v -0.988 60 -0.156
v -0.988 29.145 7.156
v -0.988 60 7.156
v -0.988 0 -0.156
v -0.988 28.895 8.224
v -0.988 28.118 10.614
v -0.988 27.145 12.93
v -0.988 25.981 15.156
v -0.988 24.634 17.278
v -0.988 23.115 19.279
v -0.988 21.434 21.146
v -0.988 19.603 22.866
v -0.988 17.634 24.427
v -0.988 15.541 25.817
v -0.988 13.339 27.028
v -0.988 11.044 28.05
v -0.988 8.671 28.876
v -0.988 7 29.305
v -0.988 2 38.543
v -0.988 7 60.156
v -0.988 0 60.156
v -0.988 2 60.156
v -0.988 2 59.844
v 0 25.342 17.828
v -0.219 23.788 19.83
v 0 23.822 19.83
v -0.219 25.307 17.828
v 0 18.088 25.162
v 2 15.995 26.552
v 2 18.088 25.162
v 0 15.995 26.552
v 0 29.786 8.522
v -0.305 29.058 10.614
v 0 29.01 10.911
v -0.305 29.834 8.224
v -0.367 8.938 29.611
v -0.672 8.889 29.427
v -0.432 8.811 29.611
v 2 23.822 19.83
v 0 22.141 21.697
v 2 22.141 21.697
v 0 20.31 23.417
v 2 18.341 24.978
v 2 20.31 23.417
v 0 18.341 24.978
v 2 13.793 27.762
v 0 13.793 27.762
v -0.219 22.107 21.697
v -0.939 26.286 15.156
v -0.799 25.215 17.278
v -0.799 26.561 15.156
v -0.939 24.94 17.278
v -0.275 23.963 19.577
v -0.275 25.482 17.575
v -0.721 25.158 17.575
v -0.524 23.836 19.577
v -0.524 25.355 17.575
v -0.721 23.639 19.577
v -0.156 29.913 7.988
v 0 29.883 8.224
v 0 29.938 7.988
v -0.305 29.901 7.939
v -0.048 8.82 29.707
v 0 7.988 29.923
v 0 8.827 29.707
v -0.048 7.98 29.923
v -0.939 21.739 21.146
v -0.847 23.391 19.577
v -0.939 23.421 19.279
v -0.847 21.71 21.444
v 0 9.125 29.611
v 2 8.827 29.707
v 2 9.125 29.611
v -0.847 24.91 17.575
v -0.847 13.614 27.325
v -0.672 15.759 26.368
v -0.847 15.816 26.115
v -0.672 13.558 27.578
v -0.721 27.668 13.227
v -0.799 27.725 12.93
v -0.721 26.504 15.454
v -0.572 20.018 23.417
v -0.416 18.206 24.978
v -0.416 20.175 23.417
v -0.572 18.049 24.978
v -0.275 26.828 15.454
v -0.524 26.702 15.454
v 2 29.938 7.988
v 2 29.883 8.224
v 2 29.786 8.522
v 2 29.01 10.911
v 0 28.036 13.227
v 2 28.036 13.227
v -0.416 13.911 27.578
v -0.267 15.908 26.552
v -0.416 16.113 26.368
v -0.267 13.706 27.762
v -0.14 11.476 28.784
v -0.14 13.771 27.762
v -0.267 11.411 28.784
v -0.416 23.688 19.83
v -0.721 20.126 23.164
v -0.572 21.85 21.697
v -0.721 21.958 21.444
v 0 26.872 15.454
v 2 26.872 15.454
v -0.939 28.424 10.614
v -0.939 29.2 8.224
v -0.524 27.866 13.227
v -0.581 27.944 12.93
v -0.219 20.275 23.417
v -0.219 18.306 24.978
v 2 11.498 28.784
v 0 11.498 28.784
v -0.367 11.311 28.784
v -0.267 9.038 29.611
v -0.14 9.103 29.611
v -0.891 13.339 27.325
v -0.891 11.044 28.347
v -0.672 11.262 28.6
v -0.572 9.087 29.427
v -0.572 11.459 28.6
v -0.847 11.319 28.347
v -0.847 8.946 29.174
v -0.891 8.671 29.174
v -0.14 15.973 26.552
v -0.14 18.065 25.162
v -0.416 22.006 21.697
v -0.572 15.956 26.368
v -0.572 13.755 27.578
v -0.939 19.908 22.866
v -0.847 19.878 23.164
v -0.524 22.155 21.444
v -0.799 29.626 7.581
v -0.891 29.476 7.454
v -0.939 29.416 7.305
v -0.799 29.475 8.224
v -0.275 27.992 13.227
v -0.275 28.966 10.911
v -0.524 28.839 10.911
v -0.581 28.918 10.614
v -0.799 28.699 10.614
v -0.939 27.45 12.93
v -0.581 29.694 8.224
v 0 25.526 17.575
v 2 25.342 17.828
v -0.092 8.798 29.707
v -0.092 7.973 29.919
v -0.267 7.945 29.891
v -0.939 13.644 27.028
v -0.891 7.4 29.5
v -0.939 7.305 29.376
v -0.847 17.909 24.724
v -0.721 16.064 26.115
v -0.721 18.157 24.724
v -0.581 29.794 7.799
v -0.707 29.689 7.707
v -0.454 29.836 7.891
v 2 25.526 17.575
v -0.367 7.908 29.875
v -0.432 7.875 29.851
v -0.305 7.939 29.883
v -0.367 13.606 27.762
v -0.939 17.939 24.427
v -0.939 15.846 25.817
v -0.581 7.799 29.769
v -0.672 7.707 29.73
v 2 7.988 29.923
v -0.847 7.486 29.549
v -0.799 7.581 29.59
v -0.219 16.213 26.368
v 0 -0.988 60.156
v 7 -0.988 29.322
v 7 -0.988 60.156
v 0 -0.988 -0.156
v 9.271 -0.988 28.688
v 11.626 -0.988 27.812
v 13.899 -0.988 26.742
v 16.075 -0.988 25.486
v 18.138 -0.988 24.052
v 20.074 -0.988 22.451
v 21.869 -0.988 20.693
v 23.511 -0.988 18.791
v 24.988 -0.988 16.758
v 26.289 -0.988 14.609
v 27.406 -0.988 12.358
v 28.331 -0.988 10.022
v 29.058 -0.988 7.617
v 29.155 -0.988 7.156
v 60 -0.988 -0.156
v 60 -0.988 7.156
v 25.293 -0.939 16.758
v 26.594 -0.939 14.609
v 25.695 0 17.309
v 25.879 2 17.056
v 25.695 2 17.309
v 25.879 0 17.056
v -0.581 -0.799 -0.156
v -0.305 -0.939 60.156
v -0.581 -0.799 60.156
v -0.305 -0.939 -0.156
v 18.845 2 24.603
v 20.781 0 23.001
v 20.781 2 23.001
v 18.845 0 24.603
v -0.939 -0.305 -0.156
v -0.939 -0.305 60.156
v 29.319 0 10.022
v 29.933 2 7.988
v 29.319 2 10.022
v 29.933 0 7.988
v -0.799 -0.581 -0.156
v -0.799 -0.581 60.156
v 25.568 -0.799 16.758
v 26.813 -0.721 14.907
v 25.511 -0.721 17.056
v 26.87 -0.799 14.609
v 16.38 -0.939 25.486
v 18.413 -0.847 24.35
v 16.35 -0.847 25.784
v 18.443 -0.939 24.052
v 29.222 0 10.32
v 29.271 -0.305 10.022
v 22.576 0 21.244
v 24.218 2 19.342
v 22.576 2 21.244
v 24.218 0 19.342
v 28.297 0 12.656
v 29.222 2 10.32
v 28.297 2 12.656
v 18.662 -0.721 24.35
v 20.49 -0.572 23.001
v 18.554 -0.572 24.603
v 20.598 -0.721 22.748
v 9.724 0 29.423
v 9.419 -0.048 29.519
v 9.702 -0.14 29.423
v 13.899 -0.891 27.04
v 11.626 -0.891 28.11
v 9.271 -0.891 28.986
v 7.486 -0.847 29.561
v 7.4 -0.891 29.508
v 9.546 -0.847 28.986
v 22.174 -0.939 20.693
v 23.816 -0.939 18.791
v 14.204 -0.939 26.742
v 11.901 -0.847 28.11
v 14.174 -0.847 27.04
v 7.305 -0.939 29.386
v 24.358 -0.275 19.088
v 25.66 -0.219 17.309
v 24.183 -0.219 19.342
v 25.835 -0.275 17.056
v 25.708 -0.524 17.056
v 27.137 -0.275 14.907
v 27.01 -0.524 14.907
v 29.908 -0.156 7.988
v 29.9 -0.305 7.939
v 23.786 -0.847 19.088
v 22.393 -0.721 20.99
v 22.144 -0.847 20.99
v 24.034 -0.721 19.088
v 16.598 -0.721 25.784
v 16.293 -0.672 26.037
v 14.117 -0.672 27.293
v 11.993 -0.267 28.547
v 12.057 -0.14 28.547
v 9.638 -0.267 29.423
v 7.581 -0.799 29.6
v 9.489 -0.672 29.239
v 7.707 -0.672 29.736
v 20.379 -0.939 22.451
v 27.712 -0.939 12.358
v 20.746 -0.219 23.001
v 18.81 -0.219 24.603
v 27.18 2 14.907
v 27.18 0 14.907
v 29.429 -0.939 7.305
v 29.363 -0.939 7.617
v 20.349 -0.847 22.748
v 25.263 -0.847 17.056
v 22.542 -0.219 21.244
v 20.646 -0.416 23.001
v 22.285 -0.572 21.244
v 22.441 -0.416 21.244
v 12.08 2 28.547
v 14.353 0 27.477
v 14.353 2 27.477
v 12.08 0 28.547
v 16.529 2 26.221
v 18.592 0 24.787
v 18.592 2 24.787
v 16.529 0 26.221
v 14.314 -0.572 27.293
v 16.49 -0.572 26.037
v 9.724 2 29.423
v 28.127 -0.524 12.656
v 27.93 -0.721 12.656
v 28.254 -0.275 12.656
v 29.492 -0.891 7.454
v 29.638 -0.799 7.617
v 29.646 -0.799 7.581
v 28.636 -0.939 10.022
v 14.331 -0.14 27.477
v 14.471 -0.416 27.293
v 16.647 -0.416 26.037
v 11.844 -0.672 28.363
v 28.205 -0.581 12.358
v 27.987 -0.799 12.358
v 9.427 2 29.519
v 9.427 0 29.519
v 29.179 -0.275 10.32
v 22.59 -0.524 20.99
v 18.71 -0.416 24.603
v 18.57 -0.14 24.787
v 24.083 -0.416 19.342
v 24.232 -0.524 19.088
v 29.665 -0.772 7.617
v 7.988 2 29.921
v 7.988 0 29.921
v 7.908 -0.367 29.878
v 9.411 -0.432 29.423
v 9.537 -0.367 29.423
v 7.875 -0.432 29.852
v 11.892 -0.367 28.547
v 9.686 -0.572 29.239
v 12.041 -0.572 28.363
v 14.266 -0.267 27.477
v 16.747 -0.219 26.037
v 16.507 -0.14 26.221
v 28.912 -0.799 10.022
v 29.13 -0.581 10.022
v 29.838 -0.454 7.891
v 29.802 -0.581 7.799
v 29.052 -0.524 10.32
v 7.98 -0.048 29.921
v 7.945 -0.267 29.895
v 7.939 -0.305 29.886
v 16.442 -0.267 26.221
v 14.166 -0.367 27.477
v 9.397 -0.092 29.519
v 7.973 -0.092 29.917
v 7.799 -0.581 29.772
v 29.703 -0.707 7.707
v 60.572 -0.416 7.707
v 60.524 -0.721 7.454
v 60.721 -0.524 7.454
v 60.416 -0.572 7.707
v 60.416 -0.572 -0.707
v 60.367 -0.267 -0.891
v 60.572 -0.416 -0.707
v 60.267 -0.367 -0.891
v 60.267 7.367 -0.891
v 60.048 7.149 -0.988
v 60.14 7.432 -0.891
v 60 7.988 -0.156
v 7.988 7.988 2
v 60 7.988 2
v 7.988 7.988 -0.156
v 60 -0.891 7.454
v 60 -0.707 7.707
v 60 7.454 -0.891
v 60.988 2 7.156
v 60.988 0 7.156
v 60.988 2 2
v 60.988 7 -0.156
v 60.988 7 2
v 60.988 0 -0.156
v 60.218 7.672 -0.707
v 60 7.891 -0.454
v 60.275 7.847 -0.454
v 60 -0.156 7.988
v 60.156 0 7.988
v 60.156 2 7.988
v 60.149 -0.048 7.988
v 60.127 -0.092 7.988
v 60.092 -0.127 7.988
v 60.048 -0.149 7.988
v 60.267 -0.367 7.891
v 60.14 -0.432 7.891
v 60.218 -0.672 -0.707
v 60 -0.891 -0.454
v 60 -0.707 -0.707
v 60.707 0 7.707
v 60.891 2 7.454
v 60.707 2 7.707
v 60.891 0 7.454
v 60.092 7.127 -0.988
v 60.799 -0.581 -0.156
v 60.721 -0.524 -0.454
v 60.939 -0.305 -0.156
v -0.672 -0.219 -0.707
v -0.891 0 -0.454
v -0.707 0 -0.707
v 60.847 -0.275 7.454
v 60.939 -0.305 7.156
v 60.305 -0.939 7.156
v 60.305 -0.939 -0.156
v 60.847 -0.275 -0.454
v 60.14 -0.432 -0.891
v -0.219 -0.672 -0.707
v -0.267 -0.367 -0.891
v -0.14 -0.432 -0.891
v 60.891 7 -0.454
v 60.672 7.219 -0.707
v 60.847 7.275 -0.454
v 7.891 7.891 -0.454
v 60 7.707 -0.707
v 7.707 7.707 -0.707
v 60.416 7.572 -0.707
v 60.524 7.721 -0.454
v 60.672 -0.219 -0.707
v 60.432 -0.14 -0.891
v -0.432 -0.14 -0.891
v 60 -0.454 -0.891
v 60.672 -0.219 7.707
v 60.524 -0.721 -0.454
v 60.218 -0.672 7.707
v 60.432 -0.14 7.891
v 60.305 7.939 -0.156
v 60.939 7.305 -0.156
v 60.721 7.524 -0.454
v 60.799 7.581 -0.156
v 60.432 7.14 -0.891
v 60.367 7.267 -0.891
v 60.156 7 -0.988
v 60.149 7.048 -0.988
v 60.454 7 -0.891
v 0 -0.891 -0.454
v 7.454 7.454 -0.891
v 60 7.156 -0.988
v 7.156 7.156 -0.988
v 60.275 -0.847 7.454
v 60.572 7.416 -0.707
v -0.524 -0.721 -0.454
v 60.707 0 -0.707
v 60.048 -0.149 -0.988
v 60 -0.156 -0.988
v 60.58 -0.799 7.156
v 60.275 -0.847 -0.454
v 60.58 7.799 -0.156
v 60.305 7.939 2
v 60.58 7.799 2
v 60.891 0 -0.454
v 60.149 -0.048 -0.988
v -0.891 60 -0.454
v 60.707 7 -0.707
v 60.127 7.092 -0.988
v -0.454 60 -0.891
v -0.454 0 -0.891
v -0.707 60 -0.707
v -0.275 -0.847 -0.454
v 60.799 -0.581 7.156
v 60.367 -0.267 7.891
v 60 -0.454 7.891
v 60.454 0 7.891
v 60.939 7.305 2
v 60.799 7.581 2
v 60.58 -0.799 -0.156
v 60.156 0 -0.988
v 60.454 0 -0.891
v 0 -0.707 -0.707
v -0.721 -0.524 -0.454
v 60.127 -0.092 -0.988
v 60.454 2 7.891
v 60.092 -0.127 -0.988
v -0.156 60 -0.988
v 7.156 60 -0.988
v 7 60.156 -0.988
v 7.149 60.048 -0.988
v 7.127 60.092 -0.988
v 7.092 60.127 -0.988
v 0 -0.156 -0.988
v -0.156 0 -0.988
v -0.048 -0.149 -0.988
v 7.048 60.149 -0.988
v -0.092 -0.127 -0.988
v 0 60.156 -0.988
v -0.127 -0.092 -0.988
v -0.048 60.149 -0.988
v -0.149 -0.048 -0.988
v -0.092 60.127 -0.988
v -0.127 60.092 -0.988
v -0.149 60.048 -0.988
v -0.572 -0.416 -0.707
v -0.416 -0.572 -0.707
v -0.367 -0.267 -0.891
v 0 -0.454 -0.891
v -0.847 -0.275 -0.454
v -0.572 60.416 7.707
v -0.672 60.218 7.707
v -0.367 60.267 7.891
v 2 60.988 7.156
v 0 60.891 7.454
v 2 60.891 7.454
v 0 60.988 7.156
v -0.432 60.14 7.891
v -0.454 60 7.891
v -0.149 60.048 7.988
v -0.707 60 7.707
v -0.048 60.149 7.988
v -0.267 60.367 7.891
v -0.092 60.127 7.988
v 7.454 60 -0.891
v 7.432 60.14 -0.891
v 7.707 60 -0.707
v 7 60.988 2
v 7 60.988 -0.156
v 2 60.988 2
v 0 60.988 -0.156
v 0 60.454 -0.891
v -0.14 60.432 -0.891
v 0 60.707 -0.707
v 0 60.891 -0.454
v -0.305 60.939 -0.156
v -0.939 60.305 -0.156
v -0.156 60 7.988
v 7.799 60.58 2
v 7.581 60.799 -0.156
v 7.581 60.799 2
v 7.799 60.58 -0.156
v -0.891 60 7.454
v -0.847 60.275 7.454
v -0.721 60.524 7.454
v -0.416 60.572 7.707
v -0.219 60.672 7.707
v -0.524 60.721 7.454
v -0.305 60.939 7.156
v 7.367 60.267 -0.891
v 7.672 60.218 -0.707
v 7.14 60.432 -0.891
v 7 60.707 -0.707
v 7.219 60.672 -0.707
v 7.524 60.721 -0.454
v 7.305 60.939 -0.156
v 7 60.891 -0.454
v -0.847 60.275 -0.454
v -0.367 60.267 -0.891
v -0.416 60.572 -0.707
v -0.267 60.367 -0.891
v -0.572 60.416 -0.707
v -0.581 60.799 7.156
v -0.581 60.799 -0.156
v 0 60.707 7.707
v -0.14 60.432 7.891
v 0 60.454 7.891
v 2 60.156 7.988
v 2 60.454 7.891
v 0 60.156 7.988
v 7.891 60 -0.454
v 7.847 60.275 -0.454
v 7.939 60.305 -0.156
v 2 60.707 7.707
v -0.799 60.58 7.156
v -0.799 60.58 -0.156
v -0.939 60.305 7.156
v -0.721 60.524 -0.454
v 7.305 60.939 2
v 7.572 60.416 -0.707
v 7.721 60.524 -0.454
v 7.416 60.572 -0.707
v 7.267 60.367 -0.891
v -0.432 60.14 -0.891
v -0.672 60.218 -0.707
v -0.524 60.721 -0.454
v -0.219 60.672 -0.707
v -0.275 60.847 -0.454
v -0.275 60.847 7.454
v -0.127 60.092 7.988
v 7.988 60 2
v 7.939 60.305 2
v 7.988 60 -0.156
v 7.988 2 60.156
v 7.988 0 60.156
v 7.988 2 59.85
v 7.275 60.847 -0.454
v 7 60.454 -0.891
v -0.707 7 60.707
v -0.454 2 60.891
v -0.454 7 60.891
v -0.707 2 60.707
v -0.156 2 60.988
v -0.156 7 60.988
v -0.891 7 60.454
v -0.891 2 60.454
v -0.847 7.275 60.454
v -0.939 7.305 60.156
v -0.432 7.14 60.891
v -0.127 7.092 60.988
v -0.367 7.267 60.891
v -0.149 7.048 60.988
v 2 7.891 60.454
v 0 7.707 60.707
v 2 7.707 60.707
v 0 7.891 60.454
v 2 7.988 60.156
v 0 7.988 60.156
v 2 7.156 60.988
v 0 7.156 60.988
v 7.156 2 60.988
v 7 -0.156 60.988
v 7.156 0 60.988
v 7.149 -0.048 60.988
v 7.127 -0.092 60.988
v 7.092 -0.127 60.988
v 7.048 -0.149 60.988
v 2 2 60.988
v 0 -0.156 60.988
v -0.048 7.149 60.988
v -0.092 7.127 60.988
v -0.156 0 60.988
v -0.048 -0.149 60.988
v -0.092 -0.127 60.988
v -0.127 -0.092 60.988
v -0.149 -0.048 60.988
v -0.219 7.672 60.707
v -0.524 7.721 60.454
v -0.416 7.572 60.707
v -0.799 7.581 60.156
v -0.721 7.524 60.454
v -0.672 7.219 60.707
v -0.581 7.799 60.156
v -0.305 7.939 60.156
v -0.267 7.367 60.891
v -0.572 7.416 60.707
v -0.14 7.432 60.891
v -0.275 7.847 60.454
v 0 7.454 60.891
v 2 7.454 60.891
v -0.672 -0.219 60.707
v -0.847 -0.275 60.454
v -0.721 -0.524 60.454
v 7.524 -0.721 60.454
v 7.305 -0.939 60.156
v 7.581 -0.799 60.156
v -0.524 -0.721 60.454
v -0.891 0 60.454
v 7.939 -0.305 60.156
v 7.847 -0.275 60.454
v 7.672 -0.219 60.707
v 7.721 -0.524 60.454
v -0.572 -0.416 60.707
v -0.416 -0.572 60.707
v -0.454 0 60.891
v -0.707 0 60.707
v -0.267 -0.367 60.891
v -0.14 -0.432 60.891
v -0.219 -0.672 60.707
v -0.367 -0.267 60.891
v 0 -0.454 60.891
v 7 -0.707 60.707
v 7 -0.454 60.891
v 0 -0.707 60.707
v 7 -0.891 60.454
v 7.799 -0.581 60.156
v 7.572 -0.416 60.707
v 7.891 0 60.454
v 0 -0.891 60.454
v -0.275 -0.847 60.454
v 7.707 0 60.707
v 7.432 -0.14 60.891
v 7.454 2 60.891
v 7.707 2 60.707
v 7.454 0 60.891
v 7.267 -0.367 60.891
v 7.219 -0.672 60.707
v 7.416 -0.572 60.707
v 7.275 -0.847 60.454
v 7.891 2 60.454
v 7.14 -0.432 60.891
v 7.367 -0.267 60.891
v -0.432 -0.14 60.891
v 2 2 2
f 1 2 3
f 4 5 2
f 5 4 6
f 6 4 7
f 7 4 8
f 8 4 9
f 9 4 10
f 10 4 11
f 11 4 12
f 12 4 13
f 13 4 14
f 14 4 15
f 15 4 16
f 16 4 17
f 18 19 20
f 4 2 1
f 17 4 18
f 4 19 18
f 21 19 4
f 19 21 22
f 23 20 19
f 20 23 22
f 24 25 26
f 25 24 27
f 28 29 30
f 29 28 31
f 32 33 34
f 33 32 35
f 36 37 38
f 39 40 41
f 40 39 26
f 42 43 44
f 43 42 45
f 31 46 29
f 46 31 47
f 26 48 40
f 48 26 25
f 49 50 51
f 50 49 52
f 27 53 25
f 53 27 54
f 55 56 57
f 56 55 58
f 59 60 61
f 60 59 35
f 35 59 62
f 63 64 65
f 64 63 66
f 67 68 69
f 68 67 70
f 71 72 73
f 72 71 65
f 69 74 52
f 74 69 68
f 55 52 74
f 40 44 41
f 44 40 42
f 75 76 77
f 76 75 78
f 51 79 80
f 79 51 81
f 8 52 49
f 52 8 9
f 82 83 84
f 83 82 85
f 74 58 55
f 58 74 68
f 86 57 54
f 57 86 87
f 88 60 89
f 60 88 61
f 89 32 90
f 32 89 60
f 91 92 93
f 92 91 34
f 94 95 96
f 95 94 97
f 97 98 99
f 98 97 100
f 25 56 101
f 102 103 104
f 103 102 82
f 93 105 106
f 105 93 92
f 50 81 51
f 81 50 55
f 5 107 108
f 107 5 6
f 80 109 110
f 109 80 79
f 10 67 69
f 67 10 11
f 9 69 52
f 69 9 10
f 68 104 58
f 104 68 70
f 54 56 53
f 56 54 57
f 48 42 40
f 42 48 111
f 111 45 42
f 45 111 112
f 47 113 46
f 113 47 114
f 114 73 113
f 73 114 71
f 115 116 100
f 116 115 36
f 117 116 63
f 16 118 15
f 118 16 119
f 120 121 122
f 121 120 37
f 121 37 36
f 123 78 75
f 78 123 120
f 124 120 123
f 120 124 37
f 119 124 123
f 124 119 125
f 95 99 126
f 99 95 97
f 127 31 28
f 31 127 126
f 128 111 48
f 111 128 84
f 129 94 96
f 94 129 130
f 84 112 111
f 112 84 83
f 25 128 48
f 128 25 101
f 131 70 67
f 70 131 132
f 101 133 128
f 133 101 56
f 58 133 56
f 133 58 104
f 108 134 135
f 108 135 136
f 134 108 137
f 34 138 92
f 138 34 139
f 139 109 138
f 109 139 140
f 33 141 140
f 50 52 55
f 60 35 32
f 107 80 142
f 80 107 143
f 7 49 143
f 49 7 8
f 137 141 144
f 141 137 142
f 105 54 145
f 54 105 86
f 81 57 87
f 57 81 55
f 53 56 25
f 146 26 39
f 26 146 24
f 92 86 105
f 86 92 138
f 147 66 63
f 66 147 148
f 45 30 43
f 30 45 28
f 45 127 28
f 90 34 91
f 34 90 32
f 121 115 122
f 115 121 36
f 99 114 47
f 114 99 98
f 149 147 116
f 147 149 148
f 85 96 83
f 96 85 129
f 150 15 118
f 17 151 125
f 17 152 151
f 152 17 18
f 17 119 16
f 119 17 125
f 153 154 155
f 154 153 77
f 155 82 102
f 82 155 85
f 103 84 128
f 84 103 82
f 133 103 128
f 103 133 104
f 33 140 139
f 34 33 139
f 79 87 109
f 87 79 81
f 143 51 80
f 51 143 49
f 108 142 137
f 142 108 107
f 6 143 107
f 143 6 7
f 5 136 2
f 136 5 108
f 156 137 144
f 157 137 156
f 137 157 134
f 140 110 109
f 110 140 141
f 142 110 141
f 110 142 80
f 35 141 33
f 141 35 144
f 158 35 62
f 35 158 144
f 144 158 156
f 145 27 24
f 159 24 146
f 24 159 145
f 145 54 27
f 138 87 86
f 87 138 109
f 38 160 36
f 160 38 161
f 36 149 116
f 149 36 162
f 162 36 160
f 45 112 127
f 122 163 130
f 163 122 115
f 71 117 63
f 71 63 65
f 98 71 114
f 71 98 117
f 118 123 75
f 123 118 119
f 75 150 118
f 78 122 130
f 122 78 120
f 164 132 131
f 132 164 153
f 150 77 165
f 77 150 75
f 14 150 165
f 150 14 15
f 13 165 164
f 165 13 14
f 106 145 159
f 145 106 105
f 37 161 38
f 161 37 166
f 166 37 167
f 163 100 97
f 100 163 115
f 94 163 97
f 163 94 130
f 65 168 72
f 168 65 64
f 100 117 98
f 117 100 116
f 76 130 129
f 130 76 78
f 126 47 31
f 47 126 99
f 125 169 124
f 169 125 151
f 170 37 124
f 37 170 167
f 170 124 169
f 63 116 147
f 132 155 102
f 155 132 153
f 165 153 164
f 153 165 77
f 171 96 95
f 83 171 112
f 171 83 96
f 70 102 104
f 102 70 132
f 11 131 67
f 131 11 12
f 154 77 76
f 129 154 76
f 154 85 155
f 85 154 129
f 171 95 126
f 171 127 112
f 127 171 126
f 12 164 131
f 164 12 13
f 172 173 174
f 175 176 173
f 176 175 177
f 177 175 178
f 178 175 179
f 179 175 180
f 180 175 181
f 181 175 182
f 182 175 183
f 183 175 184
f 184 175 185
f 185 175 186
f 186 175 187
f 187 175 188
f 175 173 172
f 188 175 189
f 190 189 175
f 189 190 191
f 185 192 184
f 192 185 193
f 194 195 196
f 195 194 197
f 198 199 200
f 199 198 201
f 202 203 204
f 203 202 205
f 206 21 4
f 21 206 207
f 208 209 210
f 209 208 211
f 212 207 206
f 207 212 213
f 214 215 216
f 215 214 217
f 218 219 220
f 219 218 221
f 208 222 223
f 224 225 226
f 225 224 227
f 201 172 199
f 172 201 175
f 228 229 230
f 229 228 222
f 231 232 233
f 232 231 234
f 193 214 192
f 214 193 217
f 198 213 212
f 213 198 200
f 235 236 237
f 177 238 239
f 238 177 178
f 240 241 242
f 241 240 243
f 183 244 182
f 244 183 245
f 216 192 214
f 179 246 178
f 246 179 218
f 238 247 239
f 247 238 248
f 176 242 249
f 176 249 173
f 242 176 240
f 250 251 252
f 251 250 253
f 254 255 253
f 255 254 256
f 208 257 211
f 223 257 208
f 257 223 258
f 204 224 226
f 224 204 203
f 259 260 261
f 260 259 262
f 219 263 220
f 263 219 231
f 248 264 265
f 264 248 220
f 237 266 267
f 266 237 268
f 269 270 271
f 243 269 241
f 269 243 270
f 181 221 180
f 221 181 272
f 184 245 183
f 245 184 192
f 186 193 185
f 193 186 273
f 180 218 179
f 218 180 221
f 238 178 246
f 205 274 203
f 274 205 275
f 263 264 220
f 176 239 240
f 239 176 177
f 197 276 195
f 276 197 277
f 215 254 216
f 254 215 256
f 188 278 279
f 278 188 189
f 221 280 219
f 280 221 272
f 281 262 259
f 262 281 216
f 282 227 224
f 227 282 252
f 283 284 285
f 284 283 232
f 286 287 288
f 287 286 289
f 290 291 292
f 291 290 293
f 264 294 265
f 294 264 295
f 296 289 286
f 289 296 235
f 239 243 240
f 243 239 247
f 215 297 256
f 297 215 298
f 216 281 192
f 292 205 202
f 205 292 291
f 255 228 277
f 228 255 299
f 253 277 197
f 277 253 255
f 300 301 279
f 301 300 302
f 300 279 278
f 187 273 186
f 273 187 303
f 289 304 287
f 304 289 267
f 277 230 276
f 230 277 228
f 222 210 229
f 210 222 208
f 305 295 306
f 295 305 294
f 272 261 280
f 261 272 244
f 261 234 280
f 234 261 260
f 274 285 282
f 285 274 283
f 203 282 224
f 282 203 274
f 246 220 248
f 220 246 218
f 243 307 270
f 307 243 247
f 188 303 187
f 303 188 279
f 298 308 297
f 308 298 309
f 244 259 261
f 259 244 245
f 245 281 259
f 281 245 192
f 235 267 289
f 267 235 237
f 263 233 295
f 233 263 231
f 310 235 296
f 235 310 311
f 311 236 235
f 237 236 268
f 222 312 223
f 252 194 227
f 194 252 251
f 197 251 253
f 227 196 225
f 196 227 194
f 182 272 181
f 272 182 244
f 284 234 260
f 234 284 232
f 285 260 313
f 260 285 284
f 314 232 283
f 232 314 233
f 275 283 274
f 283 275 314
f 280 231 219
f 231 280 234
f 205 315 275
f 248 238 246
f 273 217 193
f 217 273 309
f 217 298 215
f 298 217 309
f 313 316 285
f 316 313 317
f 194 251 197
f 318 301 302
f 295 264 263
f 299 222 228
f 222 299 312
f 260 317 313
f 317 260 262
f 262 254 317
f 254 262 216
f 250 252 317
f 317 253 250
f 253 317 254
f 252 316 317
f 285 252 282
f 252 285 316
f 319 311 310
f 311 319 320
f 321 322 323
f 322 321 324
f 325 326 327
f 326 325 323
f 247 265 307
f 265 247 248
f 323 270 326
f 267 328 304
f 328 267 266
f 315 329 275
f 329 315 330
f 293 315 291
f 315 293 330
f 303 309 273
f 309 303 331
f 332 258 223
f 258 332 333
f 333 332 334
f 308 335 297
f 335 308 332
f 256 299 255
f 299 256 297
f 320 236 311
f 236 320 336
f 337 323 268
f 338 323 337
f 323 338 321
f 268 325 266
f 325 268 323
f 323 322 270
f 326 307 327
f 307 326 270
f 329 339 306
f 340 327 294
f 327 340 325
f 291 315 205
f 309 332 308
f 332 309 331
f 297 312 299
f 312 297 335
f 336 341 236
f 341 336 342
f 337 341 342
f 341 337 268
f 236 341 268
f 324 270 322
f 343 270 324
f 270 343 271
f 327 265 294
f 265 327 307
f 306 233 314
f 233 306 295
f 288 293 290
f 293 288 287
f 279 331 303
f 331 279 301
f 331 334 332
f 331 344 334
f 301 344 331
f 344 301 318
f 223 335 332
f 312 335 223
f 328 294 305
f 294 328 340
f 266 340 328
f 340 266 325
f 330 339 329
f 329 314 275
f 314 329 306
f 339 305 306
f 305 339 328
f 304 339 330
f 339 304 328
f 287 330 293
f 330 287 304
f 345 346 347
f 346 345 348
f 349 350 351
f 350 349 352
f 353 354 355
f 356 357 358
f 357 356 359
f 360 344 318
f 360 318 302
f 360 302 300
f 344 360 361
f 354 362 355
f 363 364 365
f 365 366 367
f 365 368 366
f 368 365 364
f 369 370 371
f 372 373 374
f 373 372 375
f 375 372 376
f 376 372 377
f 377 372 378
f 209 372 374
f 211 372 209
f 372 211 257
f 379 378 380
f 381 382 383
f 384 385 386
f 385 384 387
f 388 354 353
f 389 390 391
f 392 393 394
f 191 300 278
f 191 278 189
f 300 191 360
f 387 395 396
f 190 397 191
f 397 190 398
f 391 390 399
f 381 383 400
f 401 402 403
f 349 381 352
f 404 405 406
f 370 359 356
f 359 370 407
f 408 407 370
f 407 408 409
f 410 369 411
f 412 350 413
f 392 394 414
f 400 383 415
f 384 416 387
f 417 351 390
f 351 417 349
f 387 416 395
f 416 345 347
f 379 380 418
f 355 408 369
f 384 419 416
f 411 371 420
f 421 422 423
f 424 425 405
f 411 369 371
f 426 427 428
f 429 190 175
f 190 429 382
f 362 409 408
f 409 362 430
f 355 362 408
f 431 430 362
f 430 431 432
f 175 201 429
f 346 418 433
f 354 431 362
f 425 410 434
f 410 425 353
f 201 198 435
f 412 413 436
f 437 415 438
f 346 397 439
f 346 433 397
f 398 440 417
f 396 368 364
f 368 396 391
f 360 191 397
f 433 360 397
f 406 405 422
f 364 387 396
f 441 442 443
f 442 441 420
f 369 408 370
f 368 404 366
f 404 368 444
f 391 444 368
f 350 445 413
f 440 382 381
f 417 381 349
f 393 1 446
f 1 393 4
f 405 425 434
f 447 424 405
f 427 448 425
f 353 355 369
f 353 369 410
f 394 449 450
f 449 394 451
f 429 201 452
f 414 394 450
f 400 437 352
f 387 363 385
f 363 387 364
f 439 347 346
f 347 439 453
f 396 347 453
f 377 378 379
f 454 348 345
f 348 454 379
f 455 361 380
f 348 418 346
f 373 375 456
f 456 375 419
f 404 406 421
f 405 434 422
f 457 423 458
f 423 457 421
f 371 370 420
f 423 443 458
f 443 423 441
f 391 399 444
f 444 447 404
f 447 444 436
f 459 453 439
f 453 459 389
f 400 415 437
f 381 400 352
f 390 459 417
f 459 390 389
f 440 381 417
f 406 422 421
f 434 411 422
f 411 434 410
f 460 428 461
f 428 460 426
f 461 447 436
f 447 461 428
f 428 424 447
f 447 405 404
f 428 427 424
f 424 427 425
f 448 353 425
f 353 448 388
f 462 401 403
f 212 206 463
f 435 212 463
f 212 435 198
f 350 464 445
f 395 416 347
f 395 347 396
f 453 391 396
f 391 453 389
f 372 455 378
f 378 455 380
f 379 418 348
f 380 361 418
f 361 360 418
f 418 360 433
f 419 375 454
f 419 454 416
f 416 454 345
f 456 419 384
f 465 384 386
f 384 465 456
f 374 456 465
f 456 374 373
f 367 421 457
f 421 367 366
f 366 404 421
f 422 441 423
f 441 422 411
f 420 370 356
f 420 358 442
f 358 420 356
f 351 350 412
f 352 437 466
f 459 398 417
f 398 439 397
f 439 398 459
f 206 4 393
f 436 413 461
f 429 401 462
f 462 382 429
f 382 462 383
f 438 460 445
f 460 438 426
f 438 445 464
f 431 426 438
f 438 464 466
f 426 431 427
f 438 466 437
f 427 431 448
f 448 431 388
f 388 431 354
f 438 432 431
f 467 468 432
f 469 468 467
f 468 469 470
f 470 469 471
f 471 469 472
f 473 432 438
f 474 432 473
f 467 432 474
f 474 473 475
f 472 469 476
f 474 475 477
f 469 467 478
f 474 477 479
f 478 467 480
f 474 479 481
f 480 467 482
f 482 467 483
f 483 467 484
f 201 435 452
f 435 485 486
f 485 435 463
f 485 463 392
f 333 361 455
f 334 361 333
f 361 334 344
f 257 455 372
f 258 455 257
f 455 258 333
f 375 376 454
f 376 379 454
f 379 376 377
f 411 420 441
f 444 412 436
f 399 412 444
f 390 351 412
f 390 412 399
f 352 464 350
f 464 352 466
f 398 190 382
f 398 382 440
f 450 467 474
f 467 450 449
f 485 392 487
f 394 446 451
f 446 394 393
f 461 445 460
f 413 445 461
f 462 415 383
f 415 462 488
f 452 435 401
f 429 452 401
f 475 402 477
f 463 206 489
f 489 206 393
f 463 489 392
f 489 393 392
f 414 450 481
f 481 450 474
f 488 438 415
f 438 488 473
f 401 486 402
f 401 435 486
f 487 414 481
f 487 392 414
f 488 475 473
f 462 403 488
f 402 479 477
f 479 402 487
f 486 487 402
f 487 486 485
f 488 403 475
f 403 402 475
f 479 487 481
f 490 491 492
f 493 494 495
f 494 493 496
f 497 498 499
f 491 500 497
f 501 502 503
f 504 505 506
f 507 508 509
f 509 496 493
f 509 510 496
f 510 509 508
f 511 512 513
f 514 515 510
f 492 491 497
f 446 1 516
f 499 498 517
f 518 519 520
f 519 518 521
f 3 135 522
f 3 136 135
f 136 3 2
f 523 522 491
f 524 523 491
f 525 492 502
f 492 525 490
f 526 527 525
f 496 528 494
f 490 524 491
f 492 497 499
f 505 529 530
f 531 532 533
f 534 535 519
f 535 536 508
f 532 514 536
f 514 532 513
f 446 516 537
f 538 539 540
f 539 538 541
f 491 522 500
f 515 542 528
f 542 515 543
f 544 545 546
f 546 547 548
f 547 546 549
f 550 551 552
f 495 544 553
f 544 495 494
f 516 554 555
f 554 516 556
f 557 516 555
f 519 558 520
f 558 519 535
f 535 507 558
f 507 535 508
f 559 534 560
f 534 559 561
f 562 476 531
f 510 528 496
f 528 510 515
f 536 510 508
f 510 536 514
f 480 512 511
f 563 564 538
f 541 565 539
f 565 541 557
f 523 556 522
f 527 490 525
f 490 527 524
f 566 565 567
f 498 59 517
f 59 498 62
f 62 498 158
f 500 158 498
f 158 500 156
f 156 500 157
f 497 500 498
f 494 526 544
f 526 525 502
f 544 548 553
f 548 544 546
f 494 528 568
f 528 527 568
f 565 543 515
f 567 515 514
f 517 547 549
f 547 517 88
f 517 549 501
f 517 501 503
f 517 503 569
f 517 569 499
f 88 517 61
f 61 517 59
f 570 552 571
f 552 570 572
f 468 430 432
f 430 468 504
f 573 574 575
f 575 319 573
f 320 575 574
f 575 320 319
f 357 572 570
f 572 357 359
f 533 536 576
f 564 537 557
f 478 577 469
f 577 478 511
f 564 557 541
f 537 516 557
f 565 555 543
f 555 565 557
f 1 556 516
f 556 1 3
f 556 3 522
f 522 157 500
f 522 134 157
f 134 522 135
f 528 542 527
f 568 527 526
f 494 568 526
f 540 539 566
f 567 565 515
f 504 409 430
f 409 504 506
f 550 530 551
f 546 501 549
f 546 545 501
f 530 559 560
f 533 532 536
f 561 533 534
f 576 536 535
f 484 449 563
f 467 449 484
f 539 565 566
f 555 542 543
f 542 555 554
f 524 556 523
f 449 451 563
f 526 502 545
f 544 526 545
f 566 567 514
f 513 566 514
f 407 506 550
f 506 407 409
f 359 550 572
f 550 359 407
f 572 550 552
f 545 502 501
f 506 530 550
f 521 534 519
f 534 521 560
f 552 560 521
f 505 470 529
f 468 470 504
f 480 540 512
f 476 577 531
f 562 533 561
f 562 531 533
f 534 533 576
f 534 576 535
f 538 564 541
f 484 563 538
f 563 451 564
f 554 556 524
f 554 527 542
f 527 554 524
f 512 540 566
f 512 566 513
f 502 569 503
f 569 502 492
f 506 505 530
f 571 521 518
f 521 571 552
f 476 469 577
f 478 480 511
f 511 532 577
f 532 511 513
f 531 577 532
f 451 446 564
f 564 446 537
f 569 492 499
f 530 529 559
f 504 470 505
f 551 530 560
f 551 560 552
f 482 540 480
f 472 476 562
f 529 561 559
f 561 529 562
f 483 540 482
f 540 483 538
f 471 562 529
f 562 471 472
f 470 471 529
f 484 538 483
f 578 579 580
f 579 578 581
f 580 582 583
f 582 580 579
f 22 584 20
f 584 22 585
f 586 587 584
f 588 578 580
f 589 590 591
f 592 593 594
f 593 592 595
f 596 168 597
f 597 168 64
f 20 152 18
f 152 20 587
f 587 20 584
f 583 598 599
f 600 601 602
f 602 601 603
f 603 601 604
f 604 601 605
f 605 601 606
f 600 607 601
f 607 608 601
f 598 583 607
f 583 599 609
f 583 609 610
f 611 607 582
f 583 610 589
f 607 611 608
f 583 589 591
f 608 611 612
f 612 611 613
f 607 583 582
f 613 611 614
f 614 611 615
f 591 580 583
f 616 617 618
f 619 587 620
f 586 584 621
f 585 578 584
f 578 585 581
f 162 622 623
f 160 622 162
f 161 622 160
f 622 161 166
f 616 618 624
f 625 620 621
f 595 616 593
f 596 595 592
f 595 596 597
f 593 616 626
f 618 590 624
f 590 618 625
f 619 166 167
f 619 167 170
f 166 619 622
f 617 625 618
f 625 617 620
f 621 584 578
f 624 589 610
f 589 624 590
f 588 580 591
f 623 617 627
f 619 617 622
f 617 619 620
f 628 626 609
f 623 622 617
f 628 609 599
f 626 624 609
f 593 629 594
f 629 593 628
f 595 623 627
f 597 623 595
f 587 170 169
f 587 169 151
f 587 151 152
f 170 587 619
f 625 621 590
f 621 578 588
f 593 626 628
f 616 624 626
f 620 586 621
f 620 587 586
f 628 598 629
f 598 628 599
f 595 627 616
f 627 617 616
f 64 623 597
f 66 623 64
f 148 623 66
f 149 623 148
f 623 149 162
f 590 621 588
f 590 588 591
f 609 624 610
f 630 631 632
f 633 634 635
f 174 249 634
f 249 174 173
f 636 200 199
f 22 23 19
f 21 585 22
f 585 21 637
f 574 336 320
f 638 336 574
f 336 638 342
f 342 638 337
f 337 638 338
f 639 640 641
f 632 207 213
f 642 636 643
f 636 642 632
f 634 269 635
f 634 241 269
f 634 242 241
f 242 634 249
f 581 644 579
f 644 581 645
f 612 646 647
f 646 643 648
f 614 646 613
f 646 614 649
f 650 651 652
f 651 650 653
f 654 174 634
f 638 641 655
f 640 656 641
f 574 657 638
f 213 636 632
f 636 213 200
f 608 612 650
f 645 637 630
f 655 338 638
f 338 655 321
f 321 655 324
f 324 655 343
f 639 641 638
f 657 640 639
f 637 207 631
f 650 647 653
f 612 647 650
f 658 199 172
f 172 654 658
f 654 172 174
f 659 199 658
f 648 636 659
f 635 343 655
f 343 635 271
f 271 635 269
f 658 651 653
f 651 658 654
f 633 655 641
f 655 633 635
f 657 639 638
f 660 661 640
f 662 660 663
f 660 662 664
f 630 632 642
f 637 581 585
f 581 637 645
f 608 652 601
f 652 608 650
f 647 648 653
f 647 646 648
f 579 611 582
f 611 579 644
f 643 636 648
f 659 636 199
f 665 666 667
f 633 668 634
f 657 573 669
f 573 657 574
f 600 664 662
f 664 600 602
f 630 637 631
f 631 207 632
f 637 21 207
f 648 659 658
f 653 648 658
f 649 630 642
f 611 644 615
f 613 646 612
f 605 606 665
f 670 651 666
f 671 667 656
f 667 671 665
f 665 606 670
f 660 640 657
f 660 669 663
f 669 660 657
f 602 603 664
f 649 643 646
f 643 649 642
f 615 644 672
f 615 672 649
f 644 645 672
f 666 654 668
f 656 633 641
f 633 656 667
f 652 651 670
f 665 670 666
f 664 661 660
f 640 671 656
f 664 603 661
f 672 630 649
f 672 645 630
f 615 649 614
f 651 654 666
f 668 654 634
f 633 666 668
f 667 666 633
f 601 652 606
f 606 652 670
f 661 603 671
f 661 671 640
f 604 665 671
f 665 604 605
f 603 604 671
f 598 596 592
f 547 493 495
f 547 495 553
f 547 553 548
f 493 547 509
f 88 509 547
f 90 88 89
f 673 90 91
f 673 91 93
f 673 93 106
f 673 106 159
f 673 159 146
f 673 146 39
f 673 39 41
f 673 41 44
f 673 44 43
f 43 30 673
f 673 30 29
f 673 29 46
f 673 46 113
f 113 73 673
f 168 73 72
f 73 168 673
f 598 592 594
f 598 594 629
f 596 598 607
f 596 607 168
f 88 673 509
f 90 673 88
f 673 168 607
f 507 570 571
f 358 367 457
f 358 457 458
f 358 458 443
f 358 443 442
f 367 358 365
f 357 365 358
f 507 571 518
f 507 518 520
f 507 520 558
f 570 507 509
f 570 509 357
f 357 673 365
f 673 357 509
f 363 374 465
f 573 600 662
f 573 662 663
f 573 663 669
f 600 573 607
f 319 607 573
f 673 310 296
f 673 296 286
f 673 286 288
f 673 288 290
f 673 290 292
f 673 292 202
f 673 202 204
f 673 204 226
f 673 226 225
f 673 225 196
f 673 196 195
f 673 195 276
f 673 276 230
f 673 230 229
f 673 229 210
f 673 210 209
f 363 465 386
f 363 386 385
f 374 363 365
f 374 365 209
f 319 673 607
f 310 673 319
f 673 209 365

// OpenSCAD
difference() {
    minkowski() {
        union() {
            cube([7,7,60]);
            cube([7,60,7]);
            cube([60,7,7]);

            intersection() {
                union() {
                    rotate([-90,0,0])
                    cylinder(2, r=30, $fn=75);
                    rotate([0,90,0])
                    cylinder(2, r=30, $fn=75);
                }
                cube([42,42,42]);
            }
        }
        sphere(1, $fn=20);
    }

    translate([2,2,2])
        cube([99,99,99]);

    // holes
    /*
    translate([0,28,28])
    rotate([0,90,0])
    cylinder(20, d=1.5, center=true, $fn=20);
    translate([28,0,28])
    rotate([90,0,0])
    cylinder(20, d=1.5, center=true, $fn=20);
    */
}
